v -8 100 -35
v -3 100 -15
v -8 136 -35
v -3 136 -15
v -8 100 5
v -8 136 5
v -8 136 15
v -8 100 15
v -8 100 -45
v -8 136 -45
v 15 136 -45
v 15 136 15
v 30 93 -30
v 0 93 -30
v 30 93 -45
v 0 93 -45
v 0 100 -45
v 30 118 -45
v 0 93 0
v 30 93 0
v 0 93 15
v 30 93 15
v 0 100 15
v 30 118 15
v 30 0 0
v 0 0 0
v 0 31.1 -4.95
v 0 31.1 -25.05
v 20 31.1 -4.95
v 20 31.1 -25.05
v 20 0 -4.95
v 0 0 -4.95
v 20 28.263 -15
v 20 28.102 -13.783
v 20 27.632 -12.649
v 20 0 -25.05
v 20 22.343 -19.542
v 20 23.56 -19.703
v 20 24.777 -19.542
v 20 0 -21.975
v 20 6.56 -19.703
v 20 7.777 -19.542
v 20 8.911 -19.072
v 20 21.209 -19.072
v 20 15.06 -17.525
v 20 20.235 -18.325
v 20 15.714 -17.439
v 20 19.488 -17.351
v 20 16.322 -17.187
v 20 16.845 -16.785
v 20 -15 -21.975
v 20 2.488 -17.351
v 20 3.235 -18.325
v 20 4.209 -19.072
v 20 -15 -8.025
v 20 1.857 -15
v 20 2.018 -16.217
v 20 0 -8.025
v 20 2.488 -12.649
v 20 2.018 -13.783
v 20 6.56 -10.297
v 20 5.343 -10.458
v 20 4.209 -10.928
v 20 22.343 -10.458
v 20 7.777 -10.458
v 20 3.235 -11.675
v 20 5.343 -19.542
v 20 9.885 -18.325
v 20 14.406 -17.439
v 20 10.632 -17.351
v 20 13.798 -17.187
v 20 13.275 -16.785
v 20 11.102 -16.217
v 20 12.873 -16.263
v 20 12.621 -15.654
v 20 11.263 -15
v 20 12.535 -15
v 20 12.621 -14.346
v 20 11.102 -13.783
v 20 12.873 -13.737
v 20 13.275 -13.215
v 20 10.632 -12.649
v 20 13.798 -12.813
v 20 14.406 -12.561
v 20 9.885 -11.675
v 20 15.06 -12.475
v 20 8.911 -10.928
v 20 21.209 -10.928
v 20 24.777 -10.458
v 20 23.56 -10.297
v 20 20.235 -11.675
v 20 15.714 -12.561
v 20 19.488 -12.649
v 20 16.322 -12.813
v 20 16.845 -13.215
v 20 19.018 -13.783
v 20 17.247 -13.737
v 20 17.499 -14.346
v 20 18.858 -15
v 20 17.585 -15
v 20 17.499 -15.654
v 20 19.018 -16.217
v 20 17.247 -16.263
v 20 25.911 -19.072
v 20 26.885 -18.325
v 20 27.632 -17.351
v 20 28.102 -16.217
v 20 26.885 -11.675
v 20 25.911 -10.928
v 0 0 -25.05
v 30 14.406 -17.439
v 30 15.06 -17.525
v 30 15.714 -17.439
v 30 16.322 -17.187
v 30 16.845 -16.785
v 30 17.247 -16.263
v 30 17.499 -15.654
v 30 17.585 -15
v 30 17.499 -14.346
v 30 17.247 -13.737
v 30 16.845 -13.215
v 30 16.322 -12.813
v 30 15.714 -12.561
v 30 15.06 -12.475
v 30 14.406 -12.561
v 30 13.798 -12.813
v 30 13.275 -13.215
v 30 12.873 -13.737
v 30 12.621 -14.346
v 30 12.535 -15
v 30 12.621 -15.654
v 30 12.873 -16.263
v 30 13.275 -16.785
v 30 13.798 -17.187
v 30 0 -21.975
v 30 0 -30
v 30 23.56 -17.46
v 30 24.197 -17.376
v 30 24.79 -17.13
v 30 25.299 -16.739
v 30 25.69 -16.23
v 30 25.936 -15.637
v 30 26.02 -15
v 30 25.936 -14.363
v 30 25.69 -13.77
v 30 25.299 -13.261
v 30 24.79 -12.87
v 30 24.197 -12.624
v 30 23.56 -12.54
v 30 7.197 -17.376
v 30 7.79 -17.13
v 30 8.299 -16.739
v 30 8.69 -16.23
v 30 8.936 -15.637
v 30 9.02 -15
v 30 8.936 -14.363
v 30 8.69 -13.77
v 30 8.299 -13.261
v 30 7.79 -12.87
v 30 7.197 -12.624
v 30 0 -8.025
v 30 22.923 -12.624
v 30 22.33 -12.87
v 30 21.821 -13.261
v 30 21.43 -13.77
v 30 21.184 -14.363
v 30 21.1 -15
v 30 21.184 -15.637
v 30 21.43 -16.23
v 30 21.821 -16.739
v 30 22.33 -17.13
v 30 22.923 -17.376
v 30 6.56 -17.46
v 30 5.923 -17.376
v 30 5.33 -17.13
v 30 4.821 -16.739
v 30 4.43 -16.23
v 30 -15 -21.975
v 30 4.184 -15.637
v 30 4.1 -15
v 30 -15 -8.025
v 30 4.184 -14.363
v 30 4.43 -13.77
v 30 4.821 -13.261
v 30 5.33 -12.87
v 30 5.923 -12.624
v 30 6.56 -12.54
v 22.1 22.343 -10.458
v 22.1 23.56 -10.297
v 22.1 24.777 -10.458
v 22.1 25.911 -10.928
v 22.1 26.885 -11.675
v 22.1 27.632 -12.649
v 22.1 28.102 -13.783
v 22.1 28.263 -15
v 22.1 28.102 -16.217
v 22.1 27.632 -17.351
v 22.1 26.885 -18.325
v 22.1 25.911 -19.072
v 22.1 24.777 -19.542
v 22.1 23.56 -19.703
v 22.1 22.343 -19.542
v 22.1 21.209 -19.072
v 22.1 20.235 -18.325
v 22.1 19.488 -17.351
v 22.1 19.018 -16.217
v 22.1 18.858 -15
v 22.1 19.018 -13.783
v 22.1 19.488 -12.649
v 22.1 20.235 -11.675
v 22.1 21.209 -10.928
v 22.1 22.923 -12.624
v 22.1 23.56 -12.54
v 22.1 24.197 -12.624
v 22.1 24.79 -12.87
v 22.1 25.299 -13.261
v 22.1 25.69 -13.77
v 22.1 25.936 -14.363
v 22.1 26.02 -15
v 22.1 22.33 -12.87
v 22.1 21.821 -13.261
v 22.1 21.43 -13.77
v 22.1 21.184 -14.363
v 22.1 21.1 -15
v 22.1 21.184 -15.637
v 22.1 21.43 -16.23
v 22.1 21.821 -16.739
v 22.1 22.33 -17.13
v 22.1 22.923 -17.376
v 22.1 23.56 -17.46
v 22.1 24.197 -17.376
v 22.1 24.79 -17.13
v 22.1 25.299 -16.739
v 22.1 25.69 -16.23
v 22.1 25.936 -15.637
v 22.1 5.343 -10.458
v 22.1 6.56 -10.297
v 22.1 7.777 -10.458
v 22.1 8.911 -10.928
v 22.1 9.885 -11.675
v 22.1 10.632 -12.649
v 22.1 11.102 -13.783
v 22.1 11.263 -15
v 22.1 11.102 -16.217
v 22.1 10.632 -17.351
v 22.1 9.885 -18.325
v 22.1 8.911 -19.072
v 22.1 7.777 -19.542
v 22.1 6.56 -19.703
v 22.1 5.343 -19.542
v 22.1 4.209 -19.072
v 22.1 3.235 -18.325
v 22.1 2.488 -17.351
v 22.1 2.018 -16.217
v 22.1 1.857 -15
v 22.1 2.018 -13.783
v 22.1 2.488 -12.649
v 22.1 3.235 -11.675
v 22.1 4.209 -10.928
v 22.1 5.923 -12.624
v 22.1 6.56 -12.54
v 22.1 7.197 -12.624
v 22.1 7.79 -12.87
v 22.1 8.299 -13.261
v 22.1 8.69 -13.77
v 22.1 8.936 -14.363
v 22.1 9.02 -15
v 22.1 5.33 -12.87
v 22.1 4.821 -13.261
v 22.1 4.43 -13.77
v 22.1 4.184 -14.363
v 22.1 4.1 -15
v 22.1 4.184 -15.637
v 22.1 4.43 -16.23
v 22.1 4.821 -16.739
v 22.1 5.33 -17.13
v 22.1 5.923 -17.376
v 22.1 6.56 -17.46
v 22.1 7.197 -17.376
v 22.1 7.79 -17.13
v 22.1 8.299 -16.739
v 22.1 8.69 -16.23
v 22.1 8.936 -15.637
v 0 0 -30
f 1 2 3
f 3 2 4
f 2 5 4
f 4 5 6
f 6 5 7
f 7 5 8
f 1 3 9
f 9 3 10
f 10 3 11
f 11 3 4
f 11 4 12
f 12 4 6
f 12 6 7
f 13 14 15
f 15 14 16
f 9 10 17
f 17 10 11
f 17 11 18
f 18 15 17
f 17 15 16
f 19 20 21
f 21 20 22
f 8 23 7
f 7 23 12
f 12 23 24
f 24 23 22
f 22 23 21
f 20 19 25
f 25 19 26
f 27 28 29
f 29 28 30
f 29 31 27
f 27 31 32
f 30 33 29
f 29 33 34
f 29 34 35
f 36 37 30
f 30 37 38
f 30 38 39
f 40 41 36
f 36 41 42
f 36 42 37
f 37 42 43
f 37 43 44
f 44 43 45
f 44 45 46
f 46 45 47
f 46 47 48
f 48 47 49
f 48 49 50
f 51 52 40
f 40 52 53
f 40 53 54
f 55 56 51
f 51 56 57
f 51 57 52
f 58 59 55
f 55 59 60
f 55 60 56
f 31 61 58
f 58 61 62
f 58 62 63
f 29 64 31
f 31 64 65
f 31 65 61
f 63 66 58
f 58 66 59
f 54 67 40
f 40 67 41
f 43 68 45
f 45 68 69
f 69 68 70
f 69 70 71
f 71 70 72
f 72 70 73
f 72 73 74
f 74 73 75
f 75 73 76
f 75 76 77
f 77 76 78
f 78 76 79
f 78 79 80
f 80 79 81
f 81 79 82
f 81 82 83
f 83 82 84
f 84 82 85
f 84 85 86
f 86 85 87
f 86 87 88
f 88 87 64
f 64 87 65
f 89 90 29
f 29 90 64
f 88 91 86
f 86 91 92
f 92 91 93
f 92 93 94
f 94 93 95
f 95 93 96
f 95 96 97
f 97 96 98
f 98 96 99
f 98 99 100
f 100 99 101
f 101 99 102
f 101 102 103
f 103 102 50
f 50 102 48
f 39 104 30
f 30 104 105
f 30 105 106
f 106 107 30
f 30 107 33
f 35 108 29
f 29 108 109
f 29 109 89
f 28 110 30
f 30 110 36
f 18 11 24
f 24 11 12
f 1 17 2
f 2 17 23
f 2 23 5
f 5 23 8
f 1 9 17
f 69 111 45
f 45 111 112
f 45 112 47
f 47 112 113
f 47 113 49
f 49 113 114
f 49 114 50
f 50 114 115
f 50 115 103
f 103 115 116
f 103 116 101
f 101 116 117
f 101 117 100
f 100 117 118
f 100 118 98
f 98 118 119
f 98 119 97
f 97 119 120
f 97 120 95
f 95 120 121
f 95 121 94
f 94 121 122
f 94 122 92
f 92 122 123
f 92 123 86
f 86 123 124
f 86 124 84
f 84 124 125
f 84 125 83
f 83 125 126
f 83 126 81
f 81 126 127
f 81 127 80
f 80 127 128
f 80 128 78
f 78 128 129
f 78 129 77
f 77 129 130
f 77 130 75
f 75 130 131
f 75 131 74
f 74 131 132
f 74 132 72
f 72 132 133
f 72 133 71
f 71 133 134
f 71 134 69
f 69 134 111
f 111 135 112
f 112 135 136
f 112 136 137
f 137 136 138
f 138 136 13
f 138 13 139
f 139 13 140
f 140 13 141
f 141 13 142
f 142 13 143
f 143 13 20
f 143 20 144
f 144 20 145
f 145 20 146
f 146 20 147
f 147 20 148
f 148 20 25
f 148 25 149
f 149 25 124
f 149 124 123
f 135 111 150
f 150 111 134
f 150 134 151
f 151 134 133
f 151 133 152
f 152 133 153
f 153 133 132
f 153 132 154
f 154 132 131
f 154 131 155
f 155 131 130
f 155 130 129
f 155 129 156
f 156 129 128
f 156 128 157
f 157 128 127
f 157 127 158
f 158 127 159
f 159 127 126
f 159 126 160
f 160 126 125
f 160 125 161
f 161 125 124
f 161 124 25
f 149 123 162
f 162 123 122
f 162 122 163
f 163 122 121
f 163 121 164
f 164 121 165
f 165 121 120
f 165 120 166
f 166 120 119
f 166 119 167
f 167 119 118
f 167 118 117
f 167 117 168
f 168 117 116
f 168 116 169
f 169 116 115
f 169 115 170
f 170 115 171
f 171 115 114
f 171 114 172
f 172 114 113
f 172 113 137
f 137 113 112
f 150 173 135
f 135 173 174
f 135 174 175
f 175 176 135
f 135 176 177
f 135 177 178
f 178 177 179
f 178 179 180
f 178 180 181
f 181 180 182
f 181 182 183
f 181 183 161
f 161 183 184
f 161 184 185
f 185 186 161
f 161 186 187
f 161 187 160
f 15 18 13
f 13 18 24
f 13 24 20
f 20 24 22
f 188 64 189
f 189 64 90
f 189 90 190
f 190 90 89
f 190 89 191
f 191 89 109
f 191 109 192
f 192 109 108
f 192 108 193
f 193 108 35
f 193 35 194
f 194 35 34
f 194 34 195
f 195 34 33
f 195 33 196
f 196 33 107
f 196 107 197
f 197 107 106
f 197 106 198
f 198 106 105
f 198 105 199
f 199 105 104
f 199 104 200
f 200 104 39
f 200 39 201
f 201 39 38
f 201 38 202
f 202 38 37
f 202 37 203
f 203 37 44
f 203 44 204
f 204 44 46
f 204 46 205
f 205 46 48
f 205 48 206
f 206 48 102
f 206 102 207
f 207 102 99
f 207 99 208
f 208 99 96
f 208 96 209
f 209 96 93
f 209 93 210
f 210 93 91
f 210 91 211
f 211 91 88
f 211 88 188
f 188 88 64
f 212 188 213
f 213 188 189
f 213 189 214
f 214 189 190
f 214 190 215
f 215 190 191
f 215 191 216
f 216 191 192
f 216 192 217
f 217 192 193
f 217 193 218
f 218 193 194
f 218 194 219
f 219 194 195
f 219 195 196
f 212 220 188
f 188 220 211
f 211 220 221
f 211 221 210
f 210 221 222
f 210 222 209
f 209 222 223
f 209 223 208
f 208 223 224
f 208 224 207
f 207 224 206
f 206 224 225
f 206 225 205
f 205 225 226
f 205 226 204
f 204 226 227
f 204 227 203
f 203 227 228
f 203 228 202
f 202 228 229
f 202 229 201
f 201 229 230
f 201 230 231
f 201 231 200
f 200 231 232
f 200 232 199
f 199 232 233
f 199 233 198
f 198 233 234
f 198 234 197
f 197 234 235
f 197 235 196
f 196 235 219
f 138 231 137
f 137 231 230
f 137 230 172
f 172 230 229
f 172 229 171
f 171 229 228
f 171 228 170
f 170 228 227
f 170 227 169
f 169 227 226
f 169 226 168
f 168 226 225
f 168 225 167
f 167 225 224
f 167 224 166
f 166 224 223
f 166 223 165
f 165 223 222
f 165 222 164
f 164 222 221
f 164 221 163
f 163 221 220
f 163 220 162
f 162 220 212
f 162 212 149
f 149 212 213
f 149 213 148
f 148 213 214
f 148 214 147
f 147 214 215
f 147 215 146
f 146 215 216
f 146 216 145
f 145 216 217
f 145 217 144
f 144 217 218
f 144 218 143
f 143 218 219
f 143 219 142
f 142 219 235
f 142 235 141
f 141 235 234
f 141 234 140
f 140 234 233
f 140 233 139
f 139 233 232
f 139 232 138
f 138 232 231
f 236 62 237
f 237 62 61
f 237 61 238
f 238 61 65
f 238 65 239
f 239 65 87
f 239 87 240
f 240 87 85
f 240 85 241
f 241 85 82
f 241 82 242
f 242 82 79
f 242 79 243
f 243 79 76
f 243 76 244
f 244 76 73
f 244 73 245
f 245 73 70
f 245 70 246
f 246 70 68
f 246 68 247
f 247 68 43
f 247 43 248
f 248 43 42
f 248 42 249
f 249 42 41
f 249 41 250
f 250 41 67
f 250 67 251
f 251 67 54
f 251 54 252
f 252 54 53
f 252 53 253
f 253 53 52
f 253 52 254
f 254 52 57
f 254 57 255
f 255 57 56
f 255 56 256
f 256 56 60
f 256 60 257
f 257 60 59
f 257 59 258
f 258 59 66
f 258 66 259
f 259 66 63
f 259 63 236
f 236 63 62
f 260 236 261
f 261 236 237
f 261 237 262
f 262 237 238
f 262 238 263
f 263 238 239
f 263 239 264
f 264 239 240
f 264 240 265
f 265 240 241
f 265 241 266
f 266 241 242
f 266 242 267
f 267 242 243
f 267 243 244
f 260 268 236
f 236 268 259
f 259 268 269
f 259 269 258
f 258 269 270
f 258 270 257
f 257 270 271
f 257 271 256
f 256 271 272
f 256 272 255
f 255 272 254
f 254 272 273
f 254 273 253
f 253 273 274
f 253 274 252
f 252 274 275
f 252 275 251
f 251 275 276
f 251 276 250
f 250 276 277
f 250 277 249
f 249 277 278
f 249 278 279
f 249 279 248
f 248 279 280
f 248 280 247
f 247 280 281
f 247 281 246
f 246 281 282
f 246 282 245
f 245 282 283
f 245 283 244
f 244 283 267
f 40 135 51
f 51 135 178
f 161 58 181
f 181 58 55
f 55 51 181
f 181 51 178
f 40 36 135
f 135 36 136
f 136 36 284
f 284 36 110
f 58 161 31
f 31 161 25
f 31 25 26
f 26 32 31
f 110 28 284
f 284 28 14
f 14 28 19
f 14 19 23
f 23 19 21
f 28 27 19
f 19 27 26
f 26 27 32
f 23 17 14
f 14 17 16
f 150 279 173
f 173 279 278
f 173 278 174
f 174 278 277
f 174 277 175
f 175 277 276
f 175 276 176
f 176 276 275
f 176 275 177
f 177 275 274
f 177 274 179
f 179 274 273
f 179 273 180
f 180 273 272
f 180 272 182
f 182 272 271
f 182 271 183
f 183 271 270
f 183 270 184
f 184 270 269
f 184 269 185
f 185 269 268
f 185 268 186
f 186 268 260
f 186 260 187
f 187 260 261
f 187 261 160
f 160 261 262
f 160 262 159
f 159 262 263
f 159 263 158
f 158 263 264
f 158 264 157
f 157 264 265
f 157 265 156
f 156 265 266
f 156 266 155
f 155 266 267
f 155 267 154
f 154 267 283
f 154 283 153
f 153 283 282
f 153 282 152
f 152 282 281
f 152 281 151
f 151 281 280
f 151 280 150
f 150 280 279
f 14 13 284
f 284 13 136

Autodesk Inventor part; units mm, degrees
ref_plane "YZ Plane" through (0, 0, 0) normal (1, 0, 0) x (0, 1, 0)
ref_plane "XZ Plane" through (0, 0, 0) normal (0, 1, 0) x (-1, 0, 0)
sketch "Sketch1" plane through (0, 0, 0) normal (0, 0, 1) x (1, 0, 0)
  line L0 (0, 0) -> (25, 0)
  line L1 (25, 0) -> (25, 40)
  line L2 (25, 40) -> (0, 40)
  line L3 (0, 40) -> (0, 0)
  dimension "d1" = 25
  dimension "d2" = 40
  dimension "d3" = 25
extrude "Extrusion1" add sketch "Sketch1" against normal blind 30
sketch "Sketch2" plane through (25, 0, 0) normal (1, 0, 0) x (0, 0, -1)
  line L0 (0, 0) -> (30, 0) projected
  circle A0 centre (15, 6.56) radius 2.46
extrude "Extrusion2" cut sketch "Sketch2" against normal blind 30
sketch "Sketch3" plane through (0, 0, 0) normal (-1, 0, 0) x (0, 0, 1)
  line L0 (0, 0) -> (-30, 0) projected
  line L1 (-25.05, 0) -> (-4.95, 0)
  line L2 (-4.95, 0) -> (-4.95, 33.12)
  line L3 (-4.95, 33.12) -> (-25.05, 33.12)
  line L4 (-25.05, 33.12) -> (-25.05, 0)
  dimension "d11" = 20.1
extrude "Extrusion3" cut sketch "Sketch3" against normal blind 20
sketch "Sketch4" plane through (0, 0, 0) normal (0, -1, 0) x (1, 0, 0)
  line L0 (20, -4.95) -> (20, -25.05) projected
  line L1 (20, -15) -> (25, -15)
  line L2 (25, 0) -> (25, -30) projected
  line L3 (20, -8.025) -> (25, -8.025)
  line L4 (25, -8.025) -> (25, -21.975)
  line L5 (25, -21.975) -> (20, -21.975)
  line L6 (20, -21.975) -> (20, -8.025)
  line L7 (20, -8.025) -> (25, -21.975) construction
  line L8 (25, -8.025) -> (20, -21.975) construction
  line L9 (25, -12.54) -> (25, -17.46) projected
  point P0 (0, 0)
  point P1 (22.5, -15)
  dimension "d14" = 13.95
extrude "Extrusion4" add sketch "Sketch4" along normal blind 15
sketch "Sketch5" plane through (20, 0, 0) normal (-1, 0, 0) x (0, 0, 1)
  circle A0 centre (-15, 6.56) radius 2.46 projected
  circle A1 centre (-15, 6.56) radius 4.7025
  circle A2 centre (-15, 6.56) radius 2.46 projected
  circle A3 centre (-15, 6.56) radius 2.46
  point P0 (0, 0)
  dimension "d17" = 9.405
extrude "Extrusion5" cut sketch "Sketch5" against normal blind 2.1
sketch "Sketch6" plane through (25, 0, 0) normal (1, 0, 0) x (0, 0, -1)
  circle A0 centre (15, 6.56) radius 4.7025 projected
  line L0 (15, 6.56) -> (15, 23.56)
  circle A1 centre (15, 23.56) radius 2.46
  point P0 (0, 0)
  dimension "d20" = 17
  dimension "d21" = 4.92
extrude "Extrusion6" cut sketch "Sketch6" against normal blind 10 contours A1
sketch "Sketch7" plane through (20, 0, 0) normal (-1, 0, 0) x (0, 0, 1)
  circle A0 centre (-15, 23.56) radius 2.46 projected
  circle A1 centre (-15, 23.56) radius 4.7025
  point P0 (0, 0)
  dimension "d24" = 9.405
extrude "Extrusion7" cut sketch "Sketch7" against normal blind 2.1
sketch "Sketch9" plane through (25, 0, 0) normal (1, 0, 0) x (0, 0, -1)
  circle A0 centre (15, 6.56) radius 2.46 projected
  circle A1 centre (15, 6.56) radius 2.46
  circle A2 centre (15, 23.56) radius 2.46 projected
  circle A3 centre (15, 23.56) radius 2.46
  line L0 (30, 40) -> (30, 0) projected
  line L1 (30, 0) -> (30, 40)
  line L2 (30, 40) -> (0, 40)
  line L3 (0, 40) -> (0, 0)
  line L4 (0, 0) -> (8.025, 0) projected
  line L5 (21.975, 0) -> (21.975, -15)
  line L6 (21.975, -15) -> (8.025, -15)
  line L7 (8.025, -15) -> (8.025, 0)
  line L8 (0, 0) -> (8.025, 0)
  line L9 (21.975, 0) -> (30, 0)
extrude "Extrusion8" add sketch "Sketch9" along normal blind 5
sketch "Sketch10" plane through (0, 40, 0) normal (0, 1, 0) x (1, 0, 0)
  line L0 (0, 30) -> (30, 30) projected
  line L1 (30, 0) -> (0, 0) projected
  line L2 (0, 30) -> (30, 30)
  line L3 (30, 30) -> (30, 0)
  line L4 (30, 0) -> (0, 0)
  line L5 (0, 0) -> (0, 30)
extrude "Extrusion9" add sketch "Sketch10" along normal blind 30
sketch "Sketch12" plane through (30, 0, 0) normal (1, 0, 0) x (0, 0, -1)
  circle A0 centre (15, 6.56) radius 2.46 projected
  line L0 (15, 6.56) -> (15, 15.06)
  circle A1 centre (15, 15.06) radius 2.525
  point P0 (0, 0)
  dimension "d31" = 8.5
  dimension "d33" = 5.05
extrude "Extrusion10" cut sketch "Sketch12" against normal blind 30 contours A1
sketch "Sketch14" plane through (0, 0, 0) normal (0, 0, 1) x (1, 0, 0)
  line L0 (30, 70) -> (0, 70) projected
  line L1 (0, 100) -> (-8, 100)
  line L2 (30, 0) -> (30, 70) projected
  line L3 (30, 118) -> (30, 70)
  line L4 (30, 105) -> (30, 100)
  line L5 (0, 70) -> (30, 70) projected
  line L6 (0, 70) -> (0, 100)
  line L7 (15, 136) -> (30, 118)
  line L8 (-8, 136) -> (15, 136)
  line L9 (-8, 100) -> (-8, 136)
  point P0 (0, 0)
  dimension "d47" = 30
extrude "Extrusion12" add sketch "Sketch14" against normal blind 30
sketch "Sketch15" plane through (0, 0, -25.05) normal (-1, 0, 0) x (0, 0, 1)
  line L0 (0, 33.12) -> (20.1, 33.12) projected
  line L1 (20.1, 33.12) -> (20.1, 0) projected
  line L2 (0, 33.12) -> (20.1, 33.12)
  line L3 (20.1, 33.12) -> (20.1, 31.1)
  line L4 (20.1, 31.1) -> (0, 31.1)
  line L5 (0, 31.1) -> (0, 33.12)
  point P0 (25.05, 0)
  dimension "d57" = 2.02
extrude "Extrusion13" add sketch "Sketch15" against normal blind 20
sketch "Sketch23" plane through (0, 0, 0) normal (0, 0, 1) x (1, 0, 0)
  line L0 (0, 100) -> (-8, 100) projected
  line L1 (-8, 136) -> (15, 136) projected
  line L2 (-8, 136) -> (15, 136)
  line L3 (30, 118) -> (15, 136) projected
  line L4 (15, 136) -> (30, 118)
  line L5 (30, 118) -> (30, 93)
  line L6 (30, 0) -> (30, 118) projected
  line L7 (30, 93) -> (0, 93)
  line L8 (0, 93) -> (0, 100)
  line L9 (-8, 100) -> (0, 100)
  line L10 (15, 136) -> (-8, 136) projected
  line L11 (-8, 136) -> (-8, 100)
  point P0 (0, 0)
  point P1 (-2, 102)
  point P2 (4, 118)
  point P3 (-2, 134)
  dimension "d85" = 25
extrude "Extrusion14" add sketch "Sketch23" along normal blind 15
ref_plane "Work Plane1" through (0, 0, -15) normal (0, 0, 1) x (1, 0, 0)
mirror "Mirror1" about plane through (0, 0, -15) normal (0, 0, 1) of "Extrusion14"
sketch "Sketch26" plane through (-8, 136, 15) normal (0, 1, 0) x (1, 0, 0)
  line L0 (0, 60) -> (0, 0) projected
  line L1 (0, 30) -> (0, 10)
  line L2 (0, 10) -> (5, 10)
  line L3 (5, 10) -> (5, 50)
  line L4 (5, 50) -> (0, 50)
  line L5 (0, 50) -> (0, 30)
  line L6 (0, 50) -> (5, 30)
  line L7 (5, 30) -> (0, 10)
  point P0 (8, 15)
  dimension "d88" = 20
  dimension "d89" = 5
  dimension "d90" = 40
  dimension "d91" = 5
extrude "Extrusion15" cut sketch "Sketch26" against normal through all contours L6 L7 L0
properties part number "32mm_x_60mm"
